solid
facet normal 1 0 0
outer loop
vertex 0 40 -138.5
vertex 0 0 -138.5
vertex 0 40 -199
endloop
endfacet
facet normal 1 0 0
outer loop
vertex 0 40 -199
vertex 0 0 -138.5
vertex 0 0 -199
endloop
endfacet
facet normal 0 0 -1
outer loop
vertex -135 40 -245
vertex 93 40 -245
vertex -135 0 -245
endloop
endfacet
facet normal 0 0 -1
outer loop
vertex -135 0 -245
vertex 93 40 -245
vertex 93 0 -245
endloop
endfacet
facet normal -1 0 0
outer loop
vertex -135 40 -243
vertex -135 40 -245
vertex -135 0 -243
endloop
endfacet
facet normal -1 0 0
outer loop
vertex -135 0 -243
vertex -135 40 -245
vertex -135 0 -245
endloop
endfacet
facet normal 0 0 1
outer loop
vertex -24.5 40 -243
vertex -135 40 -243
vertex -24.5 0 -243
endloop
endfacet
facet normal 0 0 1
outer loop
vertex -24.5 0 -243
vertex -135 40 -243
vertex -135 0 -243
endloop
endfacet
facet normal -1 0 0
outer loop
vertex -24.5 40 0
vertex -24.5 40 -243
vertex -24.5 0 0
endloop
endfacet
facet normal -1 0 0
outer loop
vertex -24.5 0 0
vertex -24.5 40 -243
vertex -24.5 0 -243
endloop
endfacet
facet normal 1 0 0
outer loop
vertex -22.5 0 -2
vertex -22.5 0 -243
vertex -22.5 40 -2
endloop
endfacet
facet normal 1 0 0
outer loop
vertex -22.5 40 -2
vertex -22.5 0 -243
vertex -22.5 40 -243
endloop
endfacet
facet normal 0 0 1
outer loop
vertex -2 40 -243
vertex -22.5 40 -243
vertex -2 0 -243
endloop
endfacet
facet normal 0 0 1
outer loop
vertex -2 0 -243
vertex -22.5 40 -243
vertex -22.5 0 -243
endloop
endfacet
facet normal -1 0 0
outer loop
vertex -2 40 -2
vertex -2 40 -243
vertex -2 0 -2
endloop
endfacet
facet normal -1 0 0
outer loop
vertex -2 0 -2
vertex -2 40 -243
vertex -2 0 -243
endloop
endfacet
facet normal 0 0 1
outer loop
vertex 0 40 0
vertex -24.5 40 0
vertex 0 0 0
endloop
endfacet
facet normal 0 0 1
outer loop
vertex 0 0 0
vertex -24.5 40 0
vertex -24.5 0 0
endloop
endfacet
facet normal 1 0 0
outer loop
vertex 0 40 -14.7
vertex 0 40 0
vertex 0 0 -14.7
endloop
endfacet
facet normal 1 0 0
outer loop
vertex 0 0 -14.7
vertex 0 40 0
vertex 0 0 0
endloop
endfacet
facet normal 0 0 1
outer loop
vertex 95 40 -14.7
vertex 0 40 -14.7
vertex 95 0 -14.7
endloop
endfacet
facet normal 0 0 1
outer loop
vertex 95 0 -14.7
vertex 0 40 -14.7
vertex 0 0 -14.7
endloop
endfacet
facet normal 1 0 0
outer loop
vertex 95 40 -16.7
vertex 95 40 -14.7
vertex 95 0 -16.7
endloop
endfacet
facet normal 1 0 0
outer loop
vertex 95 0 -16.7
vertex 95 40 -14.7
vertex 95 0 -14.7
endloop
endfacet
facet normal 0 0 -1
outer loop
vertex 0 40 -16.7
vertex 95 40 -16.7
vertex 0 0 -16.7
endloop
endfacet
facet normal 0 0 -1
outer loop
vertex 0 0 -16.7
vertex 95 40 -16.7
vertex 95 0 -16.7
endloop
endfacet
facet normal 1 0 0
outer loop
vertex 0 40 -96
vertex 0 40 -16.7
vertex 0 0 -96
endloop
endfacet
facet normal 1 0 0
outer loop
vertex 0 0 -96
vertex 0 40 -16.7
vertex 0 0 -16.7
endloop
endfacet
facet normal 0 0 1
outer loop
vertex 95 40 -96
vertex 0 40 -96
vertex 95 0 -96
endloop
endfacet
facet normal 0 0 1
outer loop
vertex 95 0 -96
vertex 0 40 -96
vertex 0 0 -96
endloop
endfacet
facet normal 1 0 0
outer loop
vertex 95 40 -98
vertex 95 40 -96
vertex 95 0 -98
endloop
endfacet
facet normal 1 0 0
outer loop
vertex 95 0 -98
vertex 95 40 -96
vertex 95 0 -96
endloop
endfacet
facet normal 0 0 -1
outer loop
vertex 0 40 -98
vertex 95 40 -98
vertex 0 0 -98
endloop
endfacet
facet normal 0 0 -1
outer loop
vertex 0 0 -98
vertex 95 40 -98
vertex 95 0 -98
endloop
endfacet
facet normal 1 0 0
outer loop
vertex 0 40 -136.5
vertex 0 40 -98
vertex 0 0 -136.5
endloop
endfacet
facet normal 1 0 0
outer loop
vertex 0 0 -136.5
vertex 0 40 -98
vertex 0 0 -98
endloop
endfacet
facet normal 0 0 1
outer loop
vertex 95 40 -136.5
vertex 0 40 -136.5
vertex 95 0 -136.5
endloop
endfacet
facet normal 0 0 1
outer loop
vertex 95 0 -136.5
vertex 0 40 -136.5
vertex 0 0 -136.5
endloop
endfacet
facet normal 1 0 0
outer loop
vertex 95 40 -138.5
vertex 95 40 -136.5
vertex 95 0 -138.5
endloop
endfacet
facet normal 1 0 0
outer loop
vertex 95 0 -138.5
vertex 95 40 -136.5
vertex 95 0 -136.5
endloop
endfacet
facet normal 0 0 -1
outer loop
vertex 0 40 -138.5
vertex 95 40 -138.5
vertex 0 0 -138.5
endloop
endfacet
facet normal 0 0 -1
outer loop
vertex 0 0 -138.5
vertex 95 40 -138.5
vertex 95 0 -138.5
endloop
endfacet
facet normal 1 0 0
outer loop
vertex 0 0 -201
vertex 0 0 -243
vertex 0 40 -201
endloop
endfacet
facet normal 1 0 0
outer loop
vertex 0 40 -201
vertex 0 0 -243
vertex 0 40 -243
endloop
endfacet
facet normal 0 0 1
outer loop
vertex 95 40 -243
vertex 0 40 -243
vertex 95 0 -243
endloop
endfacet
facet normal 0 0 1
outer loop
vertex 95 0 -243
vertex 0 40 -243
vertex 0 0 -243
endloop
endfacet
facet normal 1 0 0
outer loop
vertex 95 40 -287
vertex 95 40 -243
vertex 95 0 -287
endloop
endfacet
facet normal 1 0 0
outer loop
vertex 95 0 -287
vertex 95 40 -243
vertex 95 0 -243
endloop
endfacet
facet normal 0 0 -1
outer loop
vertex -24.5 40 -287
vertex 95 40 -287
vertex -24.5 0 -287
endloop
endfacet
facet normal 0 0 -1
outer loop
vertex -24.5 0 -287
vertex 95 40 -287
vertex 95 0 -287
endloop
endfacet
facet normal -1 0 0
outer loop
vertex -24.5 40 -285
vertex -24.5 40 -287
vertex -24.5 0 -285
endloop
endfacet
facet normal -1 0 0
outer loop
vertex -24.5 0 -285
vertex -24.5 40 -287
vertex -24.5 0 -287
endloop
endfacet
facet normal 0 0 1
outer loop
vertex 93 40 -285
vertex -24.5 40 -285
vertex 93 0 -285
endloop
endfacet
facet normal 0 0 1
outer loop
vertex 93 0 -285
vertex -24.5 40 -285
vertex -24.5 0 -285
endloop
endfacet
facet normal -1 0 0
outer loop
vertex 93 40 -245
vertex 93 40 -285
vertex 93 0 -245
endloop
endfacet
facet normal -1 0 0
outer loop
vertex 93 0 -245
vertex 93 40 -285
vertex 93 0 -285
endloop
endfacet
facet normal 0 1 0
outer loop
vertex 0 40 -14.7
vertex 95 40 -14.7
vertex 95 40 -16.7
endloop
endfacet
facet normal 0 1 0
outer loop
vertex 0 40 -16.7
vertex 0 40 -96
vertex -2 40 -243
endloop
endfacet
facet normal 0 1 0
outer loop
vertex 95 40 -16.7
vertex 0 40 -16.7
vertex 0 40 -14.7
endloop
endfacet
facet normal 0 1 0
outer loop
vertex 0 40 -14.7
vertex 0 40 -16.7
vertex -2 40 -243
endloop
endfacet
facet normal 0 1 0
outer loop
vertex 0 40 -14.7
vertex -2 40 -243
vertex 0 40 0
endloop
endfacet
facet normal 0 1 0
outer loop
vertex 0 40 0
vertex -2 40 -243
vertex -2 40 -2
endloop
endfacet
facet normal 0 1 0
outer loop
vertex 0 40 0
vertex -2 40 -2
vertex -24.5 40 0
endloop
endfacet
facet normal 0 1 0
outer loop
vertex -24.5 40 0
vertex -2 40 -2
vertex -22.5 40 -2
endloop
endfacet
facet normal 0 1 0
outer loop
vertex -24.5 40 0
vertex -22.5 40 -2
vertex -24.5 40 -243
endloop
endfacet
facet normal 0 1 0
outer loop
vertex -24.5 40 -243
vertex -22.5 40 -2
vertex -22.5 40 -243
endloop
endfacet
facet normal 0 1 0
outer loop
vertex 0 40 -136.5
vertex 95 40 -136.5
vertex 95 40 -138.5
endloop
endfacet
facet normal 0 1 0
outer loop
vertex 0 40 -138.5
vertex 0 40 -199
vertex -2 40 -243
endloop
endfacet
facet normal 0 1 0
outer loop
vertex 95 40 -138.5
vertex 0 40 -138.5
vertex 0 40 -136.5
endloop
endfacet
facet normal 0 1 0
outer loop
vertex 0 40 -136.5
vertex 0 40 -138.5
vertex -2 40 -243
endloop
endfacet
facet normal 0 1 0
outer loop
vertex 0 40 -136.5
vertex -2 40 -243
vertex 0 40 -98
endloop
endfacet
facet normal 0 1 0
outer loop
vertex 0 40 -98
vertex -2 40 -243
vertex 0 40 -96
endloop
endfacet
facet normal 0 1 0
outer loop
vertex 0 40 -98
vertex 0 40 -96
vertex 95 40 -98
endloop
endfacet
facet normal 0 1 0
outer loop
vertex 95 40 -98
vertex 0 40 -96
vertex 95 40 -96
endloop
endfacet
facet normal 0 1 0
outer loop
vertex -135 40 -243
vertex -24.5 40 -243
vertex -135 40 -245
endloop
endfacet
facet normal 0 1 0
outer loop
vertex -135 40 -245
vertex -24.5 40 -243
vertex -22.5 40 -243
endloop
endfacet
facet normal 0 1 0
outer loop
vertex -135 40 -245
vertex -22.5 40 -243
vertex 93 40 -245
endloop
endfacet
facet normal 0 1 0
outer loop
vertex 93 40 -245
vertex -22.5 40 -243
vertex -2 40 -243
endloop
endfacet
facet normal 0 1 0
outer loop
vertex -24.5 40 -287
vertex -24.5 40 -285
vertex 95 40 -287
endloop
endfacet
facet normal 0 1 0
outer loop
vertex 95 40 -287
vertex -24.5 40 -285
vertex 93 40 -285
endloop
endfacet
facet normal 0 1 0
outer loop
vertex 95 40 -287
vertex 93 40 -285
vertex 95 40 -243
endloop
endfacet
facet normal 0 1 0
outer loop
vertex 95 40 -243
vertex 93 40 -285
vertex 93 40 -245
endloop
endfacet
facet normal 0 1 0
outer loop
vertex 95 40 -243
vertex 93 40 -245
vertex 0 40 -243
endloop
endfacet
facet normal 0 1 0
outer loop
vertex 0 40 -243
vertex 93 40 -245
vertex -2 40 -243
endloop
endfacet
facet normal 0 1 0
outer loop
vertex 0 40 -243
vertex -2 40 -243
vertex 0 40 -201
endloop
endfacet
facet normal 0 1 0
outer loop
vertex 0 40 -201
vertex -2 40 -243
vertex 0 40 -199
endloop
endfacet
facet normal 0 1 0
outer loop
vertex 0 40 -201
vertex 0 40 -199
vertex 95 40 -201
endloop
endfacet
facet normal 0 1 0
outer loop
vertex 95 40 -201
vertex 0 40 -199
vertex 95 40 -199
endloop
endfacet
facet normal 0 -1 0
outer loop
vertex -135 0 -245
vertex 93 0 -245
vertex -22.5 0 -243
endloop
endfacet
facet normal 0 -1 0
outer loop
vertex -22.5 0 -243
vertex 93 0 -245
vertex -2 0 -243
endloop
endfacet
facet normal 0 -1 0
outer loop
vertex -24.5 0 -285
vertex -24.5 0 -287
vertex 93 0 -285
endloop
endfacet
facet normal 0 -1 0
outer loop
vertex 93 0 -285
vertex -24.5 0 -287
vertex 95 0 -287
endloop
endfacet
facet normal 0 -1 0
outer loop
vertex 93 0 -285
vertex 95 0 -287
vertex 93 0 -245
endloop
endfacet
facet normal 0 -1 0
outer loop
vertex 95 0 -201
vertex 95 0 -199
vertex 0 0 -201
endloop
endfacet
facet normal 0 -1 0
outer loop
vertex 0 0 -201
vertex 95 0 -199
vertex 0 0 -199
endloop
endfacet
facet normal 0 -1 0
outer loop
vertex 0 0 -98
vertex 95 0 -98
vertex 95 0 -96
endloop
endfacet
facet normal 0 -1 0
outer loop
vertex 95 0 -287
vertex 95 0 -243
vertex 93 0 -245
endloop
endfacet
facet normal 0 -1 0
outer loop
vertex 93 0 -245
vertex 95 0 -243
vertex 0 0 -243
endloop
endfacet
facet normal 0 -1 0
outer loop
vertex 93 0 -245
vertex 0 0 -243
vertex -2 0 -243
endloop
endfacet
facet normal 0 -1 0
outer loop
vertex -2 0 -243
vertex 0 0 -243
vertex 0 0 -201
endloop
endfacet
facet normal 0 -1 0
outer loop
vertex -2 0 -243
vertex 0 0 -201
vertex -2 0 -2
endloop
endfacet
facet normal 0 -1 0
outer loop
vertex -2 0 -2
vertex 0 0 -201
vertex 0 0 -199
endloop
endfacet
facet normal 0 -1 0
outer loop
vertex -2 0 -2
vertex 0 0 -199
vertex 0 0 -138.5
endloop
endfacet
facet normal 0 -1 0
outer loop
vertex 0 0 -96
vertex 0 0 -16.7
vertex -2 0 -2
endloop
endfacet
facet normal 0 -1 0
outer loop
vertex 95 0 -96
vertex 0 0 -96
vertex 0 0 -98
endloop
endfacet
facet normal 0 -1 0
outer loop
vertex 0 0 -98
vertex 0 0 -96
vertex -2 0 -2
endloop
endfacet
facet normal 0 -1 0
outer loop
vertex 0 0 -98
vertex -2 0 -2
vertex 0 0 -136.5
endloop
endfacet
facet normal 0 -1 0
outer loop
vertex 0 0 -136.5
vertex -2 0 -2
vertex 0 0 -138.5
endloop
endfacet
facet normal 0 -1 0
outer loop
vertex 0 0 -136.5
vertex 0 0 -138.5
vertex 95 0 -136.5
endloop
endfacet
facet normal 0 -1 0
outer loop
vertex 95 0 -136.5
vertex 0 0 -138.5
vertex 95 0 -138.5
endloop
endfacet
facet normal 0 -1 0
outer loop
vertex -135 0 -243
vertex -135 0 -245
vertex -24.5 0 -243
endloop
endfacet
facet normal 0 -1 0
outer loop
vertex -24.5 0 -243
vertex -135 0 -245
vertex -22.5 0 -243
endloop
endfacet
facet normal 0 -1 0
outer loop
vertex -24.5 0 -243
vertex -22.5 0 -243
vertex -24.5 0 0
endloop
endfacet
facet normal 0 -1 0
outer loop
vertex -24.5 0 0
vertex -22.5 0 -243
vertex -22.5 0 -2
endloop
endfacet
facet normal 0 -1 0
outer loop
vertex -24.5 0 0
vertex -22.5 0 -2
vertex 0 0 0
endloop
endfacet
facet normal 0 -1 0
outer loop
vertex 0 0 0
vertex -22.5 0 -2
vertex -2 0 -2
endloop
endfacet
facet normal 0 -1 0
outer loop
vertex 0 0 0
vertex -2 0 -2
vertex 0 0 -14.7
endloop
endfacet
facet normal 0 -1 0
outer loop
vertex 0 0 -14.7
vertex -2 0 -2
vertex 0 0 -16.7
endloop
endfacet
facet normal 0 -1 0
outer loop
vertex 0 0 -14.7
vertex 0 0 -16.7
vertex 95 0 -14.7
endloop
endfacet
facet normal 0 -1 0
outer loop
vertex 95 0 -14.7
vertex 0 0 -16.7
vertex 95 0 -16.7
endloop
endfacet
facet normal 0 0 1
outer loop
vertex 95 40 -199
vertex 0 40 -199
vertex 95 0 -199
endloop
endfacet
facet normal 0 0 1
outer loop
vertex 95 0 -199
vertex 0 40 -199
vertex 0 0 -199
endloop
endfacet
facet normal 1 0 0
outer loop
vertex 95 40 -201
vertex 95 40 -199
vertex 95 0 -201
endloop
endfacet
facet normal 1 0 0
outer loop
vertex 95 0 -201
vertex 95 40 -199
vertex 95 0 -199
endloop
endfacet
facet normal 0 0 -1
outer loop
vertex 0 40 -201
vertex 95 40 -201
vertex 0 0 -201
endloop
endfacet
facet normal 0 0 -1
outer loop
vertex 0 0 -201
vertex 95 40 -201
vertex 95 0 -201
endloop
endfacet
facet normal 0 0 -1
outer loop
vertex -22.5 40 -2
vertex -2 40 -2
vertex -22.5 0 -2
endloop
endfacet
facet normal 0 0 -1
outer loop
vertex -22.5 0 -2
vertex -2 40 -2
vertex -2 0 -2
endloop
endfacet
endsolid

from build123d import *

# Parameters (mm, degrees)
BOSS_EXTRUDE1_DEPTH = 40
SKETCH1_4_W         = 20.5
SKETCH1_4_H         = 2
BOSS_EXTRUDE2_DEPTH = 40


with BuildPart() as part:
    # Sketch1 → Boss-Extrude1 (new body)
    with BuildSketch(Plane(origin=(0, 0, 0), x_dir=(1, 0, 0), z_dir=(0, 1, 0))):
        Polygon((95, 16.7), (0, 16.7), (0, 96), (95, 96), (95, 98), (0, 98), (0, 136.5), (95, 136.5), (95, 138.5), (0, 138.5), (0, 199), (95, 199), (95, 201), (0, 201), (0, 243), (95, 243), (95, 287), (-24.5, 287), (-24.5, 285), (93, 285), (93, 245), (-135, 245), (-135, 243), (-24.5, 243), (-24.5, 0), (-22.5, 0), (-22.5, 243), (-2, 243), (-2, 0), (0, 0), (0, 14.7), (95, 14.7), align=None)
    extrude(amount=BOSS_EXTRUDE1_DEPTH)

    # Sketch1<4> → Boss-Extrude2 (add)
    with BuildSketch(Plane(origin=(0, 0, 0), x_dir=(1, 0, 0), z_dir=(0, 1, 0))):
        with Locations((-12.25, 1)):
            Rectangle(SKETCH1_4_W, SKETCH1_4_H)
    extrude(amount=BOSS_EXTRUDE2_DEPTH)


solid = part.part
